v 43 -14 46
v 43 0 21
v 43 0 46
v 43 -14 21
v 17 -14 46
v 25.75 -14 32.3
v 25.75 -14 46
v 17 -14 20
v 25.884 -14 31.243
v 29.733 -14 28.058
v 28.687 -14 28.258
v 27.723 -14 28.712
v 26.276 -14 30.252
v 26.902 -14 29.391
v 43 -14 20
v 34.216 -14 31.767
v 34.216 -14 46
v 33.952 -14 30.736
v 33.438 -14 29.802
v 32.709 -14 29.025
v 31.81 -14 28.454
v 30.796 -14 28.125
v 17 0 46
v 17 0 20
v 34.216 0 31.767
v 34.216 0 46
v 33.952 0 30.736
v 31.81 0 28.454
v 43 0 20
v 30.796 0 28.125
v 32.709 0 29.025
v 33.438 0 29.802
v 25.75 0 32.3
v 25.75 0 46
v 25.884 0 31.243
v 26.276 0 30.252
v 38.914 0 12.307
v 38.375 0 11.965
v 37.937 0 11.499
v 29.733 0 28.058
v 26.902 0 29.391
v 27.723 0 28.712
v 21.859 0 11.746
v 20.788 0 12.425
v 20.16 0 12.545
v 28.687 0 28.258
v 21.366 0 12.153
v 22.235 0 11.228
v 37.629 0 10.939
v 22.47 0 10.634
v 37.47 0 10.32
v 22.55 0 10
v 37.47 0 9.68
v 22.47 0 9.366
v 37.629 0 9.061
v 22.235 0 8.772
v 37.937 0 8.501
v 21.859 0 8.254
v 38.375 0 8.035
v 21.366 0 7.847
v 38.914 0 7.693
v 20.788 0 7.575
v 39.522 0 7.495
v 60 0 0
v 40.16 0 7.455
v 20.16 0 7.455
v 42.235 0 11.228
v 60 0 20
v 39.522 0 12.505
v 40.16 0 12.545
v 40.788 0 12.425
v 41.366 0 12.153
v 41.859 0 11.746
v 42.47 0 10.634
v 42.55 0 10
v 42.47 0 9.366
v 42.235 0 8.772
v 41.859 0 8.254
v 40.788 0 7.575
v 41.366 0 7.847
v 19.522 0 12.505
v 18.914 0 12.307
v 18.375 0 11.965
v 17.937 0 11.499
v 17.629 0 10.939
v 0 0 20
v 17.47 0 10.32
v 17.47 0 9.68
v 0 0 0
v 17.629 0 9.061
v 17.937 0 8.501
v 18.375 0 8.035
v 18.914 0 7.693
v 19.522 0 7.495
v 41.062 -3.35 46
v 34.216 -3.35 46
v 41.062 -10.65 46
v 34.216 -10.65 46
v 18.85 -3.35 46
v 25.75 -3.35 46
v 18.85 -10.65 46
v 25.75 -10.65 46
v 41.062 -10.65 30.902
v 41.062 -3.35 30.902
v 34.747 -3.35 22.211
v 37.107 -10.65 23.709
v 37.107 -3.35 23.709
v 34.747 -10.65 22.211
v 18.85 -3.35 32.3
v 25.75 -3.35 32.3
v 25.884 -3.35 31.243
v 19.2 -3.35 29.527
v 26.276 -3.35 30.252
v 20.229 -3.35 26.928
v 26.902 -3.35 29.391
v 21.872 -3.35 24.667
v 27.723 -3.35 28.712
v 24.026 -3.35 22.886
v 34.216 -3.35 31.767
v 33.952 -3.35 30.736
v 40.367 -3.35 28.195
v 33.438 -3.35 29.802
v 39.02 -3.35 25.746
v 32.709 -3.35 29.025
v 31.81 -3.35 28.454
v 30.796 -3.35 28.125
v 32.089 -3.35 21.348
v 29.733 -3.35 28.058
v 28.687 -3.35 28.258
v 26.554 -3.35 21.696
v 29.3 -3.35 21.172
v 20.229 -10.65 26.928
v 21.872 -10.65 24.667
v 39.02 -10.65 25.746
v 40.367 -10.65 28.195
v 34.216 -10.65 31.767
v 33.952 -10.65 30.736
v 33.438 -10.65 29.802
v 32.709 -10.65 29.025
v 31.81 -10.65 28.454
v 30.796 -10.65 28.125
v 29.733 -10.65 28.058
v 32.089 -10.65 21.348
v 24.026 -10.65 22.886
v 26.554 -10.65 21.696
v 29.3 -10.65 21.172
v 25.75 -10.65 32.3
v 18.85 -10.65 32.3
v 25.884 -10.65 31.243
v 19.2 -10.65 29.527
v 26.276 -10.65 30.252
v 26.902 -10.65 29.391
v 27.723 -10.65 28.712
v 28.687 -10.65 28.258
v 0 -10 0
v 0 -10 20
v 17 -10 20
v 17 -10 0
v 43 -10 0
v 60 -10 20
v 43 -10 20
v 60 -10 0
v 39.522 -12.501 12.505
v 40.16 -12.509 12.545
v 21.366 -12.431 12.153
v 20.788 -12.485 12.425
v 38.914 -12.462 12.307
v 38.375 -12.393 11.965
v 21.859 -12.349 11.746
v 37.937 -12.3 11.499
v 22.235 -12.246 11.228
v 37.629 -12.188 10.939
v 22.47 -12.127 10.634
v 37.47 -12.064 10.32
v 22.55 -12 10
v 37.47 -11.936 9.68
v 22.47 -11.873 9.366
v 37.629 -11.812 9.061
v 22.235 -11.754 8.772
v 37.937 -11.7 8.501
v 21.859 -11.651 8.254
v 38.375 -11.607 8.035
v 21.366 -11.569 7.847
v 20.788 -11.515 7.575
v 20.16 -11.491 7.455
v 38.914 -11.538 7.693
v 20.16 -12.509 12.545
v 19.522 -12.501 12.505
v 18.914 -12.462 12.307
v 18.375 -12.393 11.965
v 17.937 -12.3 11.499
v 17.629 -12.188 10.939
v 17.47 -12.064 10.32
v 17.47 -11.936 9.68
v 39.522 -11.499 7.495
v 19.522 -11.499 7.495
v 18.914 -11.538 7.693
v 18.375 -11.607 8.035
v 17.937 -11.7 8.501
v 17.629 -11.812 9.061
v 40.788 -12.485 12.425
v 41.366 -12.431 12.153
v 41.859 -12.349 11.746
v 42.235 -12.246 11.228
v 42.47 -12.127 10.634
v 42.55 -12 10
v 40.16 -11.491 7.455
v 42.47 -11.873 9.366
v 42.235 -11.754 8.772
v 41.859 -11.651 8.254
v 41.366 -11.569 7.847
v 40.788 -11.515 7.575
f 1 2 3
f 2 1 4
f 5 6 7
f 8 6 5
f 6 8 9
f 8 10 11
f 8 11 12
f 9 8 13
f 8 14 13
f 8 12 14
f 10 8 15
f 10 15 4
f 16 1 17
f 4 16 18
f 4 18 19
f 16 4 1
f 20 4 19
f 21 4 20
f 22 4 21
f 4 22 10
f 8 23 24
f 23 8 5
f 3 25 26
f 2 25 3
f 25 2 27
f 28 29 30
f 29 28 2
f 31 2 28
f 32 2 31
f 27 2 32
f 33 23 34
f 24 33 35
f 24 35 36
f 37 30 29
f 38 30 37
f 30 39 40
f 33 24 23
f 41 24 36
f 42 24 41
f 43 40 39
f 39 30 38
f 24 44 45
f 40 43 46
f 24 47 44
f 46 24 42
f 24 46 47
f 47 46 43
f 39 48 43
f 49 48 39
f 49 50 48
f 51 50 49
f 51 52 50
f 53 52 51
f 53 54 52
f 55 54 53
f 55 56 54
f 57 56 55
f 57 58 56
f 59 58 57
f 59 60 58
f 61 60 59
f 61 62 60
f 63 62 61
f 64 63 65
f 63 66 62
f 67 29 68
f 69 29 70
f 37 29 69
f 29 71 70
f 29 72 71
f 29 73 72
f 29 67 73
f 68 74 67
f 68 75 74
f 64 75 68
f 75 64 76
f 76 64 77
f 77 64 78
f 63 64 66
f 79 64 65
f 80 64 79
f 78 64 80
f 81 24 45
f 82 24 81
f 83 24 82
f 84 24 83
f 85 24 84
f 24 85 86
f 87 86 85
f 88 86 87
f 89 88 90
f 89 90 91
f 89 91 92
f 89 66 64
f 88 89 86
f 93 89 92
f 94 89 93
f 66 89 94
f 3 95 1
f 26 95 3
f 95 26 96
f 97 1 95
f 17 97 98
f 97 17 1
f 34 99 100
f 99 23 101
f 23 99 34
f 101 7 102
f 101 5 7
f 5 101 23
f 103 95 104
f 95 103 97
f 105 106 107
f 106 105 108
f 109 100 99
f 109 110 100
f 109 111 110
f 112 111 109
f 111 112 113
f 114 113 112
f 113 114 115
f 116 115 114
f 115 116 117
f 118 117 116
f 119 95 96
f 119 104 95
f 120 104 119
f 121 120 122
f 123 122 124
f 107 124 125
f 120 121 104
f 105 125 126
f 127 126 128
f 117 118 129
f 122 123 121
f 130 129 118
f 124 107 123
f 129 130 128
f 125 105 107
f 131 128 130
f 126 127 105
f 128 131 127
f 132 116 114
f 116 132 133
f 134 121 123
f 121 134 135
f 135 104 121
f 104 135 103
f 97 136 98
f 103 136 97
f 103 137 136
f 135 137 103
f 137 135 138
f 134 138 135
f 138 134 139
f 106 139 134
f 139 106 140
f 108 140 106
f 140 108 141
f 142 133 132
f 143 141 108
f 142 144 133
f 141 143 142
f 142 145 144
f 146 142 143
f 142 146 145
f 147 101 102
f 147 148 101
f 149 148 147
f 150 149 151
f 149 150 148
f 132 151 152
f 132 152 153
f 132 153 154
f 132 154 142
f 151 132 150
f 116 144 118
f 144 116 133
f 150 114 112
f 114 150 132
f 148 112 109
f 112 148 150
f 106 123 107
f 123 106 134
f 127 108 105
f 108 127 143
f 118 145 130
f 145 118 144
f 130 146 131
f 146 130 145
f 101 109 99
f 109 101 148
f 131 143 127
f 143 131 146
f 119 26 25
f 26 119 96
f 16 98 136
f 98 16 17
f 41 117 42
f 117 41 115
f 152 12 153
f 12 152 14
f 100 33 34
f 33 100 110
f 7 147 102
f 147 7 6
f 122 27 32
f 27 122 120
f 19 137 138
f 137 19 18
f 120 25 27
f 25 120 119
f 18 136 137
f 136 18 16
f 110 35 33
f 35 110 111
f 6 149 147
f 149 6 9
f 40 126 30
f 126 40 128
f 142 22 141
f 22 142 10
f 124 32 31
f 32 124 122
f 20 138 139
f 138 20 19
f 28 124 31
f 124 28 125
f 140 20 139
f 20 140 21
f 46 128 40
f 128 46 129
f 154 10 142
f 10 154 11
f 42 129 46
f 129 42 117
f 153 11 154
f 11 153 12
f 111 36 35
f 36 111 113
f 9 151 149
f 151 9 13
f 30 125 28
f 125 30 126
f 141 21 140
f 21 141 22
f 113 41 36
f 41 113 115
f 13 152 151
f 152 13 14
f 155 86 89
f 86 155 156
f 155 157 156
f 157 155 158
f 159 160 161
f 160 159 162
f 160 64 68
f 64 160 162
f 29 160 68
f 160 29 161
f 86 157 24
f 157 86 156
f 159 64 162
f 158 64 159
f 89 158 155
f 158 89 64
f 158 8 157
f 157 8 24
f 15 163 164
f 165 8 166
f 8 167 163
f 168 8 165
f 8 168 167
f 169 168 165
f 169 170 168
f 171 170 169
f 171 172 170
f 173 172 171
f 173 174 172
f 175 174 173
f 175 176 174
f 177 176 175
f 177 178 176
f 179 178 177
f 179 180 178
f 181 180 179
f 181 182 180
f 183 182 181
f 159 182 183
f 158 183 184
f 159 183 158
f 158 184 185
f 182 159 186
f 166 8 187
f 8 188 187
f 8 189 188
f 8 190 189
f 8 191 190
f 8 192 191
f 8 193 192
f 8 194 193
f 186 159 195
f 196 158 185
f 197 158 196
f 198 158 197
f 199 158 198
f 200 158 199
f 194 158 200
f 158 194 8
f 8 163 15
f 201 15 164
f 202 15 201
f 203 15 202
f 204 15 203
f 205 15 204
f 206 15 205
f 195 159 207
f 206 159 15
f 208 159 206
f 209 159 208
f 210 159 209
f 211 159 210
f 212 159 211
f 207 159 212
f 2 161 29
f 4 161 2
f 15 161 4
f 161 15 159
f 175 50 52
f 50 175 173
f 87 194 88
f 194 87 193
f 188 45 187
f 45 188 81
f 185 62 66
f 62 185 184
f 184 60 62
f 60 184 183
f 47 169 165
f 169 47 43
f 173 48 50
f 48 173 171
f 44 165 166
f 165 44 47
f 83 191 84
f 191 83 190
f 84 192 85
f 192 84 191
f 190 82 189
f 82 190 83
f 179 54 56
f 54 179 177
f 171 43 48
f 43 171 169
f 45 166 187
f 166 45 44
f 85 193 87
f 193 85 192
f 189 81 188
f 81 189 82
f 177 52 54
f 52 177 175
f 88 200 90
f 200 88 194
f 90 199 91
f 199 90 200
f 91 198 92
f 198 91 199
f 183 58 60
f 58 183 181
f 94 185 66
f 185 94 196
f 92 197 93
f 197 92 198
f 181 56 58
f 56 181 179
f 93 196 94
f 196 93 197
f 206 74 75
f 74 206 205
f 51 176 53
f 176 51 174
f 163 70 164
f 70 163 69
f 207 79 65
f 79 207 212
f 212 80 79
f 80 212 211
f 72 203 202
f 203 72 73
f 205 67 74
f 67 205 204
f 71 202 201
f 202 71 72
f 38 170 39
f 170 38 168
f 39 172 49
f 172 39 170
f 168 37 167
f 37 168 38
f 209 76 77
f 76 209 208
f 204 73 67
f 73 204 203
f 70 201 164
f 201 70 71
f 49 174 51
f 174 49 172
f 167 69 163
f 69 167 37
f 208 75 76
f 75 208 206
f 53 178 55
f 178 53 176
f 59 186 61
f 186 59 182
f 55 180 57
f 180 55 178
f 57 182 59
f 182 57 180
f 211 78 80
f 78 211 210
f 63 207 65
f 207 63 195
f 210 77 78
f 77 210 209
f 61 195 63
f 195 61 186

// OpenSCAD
bearing_diameter = 22.3;
bearing_height = 7.3;
bearing_id = 8.5;

bearing_holder_width = 26;
bearing_holder_height = 26;
bearing_holder_depth = 14;

rotate([90,0,0]) main();

module main(){
    difference(){
        union(){
            translate([bearing_holder_width / 2 + 30, bearing_holder_height + 20, 0]) rotate([0,0,180]) holder();
            attachment();

            hull(){
                translate([30 - (bearing_holder_width / 2),20, 0]) cube([bearing_holder_width, 1, bearing_holder_depth]);
                translate([30 - (bearing_holder_width / 2), 0, 0]) cube([bearing_holder_width, 1, 10]);    
            }              
        }
   
        translate([20, 10, 0]) cylinder(d=5.1, h=20, $fn=25);
        translate([40, 10, 0]) cylinder(d=5.1, h=20, $fn=25);      
    }

}

module attachment(){
    difference(){
        cube([60,20,10]);
        
        //translate([10, 10, 0]) cylinder(d=5.1, h=10, $fn=25);
        //translate([50, 10, 0]) cylinder(d=5.1, h=10, $fn=25);
    } 
}

module holder(){
    difference(){
        cube([bearing_holder_width, bearing_holder_height, bearing_holder_depth]);
        
        hull(){
            translate([bearing_diameter / 2 + (bearing_holder_width - bearing_diameter) / 2, 0, (bearing_holder_depth - bearing_height) / 2]) cylinder(d=bearing_diameter, h=bearing_height, $fn=25);
            translate([bearing_diameter / 2 + (bearing_holder_width - bearing_diameter) / 2, bearing_holder_height - bearing_height - 5, (bearing_holder_depth - bearing_height) / 2]) cylinder(d=bearing_diameter, h=bearing_height, $fn=25);
        }
        
        hull(){
            translate([bearing_diameter / 2 + (bearing_holder_width - bearing_diameter) / 2, 0, 0]) cylinder(d=bearing_id, h=bearing_holder_depth, $fn=25);
            translate([bearing_diameter / 2 + (bearing_holder_width - bearing_diameter) / 2, bearing_holder_height - bearing_height - 5, 0]) cylinder(d=bearing_id, h=bearing_holder_depth, $fn=25);            
        }
    }
}
